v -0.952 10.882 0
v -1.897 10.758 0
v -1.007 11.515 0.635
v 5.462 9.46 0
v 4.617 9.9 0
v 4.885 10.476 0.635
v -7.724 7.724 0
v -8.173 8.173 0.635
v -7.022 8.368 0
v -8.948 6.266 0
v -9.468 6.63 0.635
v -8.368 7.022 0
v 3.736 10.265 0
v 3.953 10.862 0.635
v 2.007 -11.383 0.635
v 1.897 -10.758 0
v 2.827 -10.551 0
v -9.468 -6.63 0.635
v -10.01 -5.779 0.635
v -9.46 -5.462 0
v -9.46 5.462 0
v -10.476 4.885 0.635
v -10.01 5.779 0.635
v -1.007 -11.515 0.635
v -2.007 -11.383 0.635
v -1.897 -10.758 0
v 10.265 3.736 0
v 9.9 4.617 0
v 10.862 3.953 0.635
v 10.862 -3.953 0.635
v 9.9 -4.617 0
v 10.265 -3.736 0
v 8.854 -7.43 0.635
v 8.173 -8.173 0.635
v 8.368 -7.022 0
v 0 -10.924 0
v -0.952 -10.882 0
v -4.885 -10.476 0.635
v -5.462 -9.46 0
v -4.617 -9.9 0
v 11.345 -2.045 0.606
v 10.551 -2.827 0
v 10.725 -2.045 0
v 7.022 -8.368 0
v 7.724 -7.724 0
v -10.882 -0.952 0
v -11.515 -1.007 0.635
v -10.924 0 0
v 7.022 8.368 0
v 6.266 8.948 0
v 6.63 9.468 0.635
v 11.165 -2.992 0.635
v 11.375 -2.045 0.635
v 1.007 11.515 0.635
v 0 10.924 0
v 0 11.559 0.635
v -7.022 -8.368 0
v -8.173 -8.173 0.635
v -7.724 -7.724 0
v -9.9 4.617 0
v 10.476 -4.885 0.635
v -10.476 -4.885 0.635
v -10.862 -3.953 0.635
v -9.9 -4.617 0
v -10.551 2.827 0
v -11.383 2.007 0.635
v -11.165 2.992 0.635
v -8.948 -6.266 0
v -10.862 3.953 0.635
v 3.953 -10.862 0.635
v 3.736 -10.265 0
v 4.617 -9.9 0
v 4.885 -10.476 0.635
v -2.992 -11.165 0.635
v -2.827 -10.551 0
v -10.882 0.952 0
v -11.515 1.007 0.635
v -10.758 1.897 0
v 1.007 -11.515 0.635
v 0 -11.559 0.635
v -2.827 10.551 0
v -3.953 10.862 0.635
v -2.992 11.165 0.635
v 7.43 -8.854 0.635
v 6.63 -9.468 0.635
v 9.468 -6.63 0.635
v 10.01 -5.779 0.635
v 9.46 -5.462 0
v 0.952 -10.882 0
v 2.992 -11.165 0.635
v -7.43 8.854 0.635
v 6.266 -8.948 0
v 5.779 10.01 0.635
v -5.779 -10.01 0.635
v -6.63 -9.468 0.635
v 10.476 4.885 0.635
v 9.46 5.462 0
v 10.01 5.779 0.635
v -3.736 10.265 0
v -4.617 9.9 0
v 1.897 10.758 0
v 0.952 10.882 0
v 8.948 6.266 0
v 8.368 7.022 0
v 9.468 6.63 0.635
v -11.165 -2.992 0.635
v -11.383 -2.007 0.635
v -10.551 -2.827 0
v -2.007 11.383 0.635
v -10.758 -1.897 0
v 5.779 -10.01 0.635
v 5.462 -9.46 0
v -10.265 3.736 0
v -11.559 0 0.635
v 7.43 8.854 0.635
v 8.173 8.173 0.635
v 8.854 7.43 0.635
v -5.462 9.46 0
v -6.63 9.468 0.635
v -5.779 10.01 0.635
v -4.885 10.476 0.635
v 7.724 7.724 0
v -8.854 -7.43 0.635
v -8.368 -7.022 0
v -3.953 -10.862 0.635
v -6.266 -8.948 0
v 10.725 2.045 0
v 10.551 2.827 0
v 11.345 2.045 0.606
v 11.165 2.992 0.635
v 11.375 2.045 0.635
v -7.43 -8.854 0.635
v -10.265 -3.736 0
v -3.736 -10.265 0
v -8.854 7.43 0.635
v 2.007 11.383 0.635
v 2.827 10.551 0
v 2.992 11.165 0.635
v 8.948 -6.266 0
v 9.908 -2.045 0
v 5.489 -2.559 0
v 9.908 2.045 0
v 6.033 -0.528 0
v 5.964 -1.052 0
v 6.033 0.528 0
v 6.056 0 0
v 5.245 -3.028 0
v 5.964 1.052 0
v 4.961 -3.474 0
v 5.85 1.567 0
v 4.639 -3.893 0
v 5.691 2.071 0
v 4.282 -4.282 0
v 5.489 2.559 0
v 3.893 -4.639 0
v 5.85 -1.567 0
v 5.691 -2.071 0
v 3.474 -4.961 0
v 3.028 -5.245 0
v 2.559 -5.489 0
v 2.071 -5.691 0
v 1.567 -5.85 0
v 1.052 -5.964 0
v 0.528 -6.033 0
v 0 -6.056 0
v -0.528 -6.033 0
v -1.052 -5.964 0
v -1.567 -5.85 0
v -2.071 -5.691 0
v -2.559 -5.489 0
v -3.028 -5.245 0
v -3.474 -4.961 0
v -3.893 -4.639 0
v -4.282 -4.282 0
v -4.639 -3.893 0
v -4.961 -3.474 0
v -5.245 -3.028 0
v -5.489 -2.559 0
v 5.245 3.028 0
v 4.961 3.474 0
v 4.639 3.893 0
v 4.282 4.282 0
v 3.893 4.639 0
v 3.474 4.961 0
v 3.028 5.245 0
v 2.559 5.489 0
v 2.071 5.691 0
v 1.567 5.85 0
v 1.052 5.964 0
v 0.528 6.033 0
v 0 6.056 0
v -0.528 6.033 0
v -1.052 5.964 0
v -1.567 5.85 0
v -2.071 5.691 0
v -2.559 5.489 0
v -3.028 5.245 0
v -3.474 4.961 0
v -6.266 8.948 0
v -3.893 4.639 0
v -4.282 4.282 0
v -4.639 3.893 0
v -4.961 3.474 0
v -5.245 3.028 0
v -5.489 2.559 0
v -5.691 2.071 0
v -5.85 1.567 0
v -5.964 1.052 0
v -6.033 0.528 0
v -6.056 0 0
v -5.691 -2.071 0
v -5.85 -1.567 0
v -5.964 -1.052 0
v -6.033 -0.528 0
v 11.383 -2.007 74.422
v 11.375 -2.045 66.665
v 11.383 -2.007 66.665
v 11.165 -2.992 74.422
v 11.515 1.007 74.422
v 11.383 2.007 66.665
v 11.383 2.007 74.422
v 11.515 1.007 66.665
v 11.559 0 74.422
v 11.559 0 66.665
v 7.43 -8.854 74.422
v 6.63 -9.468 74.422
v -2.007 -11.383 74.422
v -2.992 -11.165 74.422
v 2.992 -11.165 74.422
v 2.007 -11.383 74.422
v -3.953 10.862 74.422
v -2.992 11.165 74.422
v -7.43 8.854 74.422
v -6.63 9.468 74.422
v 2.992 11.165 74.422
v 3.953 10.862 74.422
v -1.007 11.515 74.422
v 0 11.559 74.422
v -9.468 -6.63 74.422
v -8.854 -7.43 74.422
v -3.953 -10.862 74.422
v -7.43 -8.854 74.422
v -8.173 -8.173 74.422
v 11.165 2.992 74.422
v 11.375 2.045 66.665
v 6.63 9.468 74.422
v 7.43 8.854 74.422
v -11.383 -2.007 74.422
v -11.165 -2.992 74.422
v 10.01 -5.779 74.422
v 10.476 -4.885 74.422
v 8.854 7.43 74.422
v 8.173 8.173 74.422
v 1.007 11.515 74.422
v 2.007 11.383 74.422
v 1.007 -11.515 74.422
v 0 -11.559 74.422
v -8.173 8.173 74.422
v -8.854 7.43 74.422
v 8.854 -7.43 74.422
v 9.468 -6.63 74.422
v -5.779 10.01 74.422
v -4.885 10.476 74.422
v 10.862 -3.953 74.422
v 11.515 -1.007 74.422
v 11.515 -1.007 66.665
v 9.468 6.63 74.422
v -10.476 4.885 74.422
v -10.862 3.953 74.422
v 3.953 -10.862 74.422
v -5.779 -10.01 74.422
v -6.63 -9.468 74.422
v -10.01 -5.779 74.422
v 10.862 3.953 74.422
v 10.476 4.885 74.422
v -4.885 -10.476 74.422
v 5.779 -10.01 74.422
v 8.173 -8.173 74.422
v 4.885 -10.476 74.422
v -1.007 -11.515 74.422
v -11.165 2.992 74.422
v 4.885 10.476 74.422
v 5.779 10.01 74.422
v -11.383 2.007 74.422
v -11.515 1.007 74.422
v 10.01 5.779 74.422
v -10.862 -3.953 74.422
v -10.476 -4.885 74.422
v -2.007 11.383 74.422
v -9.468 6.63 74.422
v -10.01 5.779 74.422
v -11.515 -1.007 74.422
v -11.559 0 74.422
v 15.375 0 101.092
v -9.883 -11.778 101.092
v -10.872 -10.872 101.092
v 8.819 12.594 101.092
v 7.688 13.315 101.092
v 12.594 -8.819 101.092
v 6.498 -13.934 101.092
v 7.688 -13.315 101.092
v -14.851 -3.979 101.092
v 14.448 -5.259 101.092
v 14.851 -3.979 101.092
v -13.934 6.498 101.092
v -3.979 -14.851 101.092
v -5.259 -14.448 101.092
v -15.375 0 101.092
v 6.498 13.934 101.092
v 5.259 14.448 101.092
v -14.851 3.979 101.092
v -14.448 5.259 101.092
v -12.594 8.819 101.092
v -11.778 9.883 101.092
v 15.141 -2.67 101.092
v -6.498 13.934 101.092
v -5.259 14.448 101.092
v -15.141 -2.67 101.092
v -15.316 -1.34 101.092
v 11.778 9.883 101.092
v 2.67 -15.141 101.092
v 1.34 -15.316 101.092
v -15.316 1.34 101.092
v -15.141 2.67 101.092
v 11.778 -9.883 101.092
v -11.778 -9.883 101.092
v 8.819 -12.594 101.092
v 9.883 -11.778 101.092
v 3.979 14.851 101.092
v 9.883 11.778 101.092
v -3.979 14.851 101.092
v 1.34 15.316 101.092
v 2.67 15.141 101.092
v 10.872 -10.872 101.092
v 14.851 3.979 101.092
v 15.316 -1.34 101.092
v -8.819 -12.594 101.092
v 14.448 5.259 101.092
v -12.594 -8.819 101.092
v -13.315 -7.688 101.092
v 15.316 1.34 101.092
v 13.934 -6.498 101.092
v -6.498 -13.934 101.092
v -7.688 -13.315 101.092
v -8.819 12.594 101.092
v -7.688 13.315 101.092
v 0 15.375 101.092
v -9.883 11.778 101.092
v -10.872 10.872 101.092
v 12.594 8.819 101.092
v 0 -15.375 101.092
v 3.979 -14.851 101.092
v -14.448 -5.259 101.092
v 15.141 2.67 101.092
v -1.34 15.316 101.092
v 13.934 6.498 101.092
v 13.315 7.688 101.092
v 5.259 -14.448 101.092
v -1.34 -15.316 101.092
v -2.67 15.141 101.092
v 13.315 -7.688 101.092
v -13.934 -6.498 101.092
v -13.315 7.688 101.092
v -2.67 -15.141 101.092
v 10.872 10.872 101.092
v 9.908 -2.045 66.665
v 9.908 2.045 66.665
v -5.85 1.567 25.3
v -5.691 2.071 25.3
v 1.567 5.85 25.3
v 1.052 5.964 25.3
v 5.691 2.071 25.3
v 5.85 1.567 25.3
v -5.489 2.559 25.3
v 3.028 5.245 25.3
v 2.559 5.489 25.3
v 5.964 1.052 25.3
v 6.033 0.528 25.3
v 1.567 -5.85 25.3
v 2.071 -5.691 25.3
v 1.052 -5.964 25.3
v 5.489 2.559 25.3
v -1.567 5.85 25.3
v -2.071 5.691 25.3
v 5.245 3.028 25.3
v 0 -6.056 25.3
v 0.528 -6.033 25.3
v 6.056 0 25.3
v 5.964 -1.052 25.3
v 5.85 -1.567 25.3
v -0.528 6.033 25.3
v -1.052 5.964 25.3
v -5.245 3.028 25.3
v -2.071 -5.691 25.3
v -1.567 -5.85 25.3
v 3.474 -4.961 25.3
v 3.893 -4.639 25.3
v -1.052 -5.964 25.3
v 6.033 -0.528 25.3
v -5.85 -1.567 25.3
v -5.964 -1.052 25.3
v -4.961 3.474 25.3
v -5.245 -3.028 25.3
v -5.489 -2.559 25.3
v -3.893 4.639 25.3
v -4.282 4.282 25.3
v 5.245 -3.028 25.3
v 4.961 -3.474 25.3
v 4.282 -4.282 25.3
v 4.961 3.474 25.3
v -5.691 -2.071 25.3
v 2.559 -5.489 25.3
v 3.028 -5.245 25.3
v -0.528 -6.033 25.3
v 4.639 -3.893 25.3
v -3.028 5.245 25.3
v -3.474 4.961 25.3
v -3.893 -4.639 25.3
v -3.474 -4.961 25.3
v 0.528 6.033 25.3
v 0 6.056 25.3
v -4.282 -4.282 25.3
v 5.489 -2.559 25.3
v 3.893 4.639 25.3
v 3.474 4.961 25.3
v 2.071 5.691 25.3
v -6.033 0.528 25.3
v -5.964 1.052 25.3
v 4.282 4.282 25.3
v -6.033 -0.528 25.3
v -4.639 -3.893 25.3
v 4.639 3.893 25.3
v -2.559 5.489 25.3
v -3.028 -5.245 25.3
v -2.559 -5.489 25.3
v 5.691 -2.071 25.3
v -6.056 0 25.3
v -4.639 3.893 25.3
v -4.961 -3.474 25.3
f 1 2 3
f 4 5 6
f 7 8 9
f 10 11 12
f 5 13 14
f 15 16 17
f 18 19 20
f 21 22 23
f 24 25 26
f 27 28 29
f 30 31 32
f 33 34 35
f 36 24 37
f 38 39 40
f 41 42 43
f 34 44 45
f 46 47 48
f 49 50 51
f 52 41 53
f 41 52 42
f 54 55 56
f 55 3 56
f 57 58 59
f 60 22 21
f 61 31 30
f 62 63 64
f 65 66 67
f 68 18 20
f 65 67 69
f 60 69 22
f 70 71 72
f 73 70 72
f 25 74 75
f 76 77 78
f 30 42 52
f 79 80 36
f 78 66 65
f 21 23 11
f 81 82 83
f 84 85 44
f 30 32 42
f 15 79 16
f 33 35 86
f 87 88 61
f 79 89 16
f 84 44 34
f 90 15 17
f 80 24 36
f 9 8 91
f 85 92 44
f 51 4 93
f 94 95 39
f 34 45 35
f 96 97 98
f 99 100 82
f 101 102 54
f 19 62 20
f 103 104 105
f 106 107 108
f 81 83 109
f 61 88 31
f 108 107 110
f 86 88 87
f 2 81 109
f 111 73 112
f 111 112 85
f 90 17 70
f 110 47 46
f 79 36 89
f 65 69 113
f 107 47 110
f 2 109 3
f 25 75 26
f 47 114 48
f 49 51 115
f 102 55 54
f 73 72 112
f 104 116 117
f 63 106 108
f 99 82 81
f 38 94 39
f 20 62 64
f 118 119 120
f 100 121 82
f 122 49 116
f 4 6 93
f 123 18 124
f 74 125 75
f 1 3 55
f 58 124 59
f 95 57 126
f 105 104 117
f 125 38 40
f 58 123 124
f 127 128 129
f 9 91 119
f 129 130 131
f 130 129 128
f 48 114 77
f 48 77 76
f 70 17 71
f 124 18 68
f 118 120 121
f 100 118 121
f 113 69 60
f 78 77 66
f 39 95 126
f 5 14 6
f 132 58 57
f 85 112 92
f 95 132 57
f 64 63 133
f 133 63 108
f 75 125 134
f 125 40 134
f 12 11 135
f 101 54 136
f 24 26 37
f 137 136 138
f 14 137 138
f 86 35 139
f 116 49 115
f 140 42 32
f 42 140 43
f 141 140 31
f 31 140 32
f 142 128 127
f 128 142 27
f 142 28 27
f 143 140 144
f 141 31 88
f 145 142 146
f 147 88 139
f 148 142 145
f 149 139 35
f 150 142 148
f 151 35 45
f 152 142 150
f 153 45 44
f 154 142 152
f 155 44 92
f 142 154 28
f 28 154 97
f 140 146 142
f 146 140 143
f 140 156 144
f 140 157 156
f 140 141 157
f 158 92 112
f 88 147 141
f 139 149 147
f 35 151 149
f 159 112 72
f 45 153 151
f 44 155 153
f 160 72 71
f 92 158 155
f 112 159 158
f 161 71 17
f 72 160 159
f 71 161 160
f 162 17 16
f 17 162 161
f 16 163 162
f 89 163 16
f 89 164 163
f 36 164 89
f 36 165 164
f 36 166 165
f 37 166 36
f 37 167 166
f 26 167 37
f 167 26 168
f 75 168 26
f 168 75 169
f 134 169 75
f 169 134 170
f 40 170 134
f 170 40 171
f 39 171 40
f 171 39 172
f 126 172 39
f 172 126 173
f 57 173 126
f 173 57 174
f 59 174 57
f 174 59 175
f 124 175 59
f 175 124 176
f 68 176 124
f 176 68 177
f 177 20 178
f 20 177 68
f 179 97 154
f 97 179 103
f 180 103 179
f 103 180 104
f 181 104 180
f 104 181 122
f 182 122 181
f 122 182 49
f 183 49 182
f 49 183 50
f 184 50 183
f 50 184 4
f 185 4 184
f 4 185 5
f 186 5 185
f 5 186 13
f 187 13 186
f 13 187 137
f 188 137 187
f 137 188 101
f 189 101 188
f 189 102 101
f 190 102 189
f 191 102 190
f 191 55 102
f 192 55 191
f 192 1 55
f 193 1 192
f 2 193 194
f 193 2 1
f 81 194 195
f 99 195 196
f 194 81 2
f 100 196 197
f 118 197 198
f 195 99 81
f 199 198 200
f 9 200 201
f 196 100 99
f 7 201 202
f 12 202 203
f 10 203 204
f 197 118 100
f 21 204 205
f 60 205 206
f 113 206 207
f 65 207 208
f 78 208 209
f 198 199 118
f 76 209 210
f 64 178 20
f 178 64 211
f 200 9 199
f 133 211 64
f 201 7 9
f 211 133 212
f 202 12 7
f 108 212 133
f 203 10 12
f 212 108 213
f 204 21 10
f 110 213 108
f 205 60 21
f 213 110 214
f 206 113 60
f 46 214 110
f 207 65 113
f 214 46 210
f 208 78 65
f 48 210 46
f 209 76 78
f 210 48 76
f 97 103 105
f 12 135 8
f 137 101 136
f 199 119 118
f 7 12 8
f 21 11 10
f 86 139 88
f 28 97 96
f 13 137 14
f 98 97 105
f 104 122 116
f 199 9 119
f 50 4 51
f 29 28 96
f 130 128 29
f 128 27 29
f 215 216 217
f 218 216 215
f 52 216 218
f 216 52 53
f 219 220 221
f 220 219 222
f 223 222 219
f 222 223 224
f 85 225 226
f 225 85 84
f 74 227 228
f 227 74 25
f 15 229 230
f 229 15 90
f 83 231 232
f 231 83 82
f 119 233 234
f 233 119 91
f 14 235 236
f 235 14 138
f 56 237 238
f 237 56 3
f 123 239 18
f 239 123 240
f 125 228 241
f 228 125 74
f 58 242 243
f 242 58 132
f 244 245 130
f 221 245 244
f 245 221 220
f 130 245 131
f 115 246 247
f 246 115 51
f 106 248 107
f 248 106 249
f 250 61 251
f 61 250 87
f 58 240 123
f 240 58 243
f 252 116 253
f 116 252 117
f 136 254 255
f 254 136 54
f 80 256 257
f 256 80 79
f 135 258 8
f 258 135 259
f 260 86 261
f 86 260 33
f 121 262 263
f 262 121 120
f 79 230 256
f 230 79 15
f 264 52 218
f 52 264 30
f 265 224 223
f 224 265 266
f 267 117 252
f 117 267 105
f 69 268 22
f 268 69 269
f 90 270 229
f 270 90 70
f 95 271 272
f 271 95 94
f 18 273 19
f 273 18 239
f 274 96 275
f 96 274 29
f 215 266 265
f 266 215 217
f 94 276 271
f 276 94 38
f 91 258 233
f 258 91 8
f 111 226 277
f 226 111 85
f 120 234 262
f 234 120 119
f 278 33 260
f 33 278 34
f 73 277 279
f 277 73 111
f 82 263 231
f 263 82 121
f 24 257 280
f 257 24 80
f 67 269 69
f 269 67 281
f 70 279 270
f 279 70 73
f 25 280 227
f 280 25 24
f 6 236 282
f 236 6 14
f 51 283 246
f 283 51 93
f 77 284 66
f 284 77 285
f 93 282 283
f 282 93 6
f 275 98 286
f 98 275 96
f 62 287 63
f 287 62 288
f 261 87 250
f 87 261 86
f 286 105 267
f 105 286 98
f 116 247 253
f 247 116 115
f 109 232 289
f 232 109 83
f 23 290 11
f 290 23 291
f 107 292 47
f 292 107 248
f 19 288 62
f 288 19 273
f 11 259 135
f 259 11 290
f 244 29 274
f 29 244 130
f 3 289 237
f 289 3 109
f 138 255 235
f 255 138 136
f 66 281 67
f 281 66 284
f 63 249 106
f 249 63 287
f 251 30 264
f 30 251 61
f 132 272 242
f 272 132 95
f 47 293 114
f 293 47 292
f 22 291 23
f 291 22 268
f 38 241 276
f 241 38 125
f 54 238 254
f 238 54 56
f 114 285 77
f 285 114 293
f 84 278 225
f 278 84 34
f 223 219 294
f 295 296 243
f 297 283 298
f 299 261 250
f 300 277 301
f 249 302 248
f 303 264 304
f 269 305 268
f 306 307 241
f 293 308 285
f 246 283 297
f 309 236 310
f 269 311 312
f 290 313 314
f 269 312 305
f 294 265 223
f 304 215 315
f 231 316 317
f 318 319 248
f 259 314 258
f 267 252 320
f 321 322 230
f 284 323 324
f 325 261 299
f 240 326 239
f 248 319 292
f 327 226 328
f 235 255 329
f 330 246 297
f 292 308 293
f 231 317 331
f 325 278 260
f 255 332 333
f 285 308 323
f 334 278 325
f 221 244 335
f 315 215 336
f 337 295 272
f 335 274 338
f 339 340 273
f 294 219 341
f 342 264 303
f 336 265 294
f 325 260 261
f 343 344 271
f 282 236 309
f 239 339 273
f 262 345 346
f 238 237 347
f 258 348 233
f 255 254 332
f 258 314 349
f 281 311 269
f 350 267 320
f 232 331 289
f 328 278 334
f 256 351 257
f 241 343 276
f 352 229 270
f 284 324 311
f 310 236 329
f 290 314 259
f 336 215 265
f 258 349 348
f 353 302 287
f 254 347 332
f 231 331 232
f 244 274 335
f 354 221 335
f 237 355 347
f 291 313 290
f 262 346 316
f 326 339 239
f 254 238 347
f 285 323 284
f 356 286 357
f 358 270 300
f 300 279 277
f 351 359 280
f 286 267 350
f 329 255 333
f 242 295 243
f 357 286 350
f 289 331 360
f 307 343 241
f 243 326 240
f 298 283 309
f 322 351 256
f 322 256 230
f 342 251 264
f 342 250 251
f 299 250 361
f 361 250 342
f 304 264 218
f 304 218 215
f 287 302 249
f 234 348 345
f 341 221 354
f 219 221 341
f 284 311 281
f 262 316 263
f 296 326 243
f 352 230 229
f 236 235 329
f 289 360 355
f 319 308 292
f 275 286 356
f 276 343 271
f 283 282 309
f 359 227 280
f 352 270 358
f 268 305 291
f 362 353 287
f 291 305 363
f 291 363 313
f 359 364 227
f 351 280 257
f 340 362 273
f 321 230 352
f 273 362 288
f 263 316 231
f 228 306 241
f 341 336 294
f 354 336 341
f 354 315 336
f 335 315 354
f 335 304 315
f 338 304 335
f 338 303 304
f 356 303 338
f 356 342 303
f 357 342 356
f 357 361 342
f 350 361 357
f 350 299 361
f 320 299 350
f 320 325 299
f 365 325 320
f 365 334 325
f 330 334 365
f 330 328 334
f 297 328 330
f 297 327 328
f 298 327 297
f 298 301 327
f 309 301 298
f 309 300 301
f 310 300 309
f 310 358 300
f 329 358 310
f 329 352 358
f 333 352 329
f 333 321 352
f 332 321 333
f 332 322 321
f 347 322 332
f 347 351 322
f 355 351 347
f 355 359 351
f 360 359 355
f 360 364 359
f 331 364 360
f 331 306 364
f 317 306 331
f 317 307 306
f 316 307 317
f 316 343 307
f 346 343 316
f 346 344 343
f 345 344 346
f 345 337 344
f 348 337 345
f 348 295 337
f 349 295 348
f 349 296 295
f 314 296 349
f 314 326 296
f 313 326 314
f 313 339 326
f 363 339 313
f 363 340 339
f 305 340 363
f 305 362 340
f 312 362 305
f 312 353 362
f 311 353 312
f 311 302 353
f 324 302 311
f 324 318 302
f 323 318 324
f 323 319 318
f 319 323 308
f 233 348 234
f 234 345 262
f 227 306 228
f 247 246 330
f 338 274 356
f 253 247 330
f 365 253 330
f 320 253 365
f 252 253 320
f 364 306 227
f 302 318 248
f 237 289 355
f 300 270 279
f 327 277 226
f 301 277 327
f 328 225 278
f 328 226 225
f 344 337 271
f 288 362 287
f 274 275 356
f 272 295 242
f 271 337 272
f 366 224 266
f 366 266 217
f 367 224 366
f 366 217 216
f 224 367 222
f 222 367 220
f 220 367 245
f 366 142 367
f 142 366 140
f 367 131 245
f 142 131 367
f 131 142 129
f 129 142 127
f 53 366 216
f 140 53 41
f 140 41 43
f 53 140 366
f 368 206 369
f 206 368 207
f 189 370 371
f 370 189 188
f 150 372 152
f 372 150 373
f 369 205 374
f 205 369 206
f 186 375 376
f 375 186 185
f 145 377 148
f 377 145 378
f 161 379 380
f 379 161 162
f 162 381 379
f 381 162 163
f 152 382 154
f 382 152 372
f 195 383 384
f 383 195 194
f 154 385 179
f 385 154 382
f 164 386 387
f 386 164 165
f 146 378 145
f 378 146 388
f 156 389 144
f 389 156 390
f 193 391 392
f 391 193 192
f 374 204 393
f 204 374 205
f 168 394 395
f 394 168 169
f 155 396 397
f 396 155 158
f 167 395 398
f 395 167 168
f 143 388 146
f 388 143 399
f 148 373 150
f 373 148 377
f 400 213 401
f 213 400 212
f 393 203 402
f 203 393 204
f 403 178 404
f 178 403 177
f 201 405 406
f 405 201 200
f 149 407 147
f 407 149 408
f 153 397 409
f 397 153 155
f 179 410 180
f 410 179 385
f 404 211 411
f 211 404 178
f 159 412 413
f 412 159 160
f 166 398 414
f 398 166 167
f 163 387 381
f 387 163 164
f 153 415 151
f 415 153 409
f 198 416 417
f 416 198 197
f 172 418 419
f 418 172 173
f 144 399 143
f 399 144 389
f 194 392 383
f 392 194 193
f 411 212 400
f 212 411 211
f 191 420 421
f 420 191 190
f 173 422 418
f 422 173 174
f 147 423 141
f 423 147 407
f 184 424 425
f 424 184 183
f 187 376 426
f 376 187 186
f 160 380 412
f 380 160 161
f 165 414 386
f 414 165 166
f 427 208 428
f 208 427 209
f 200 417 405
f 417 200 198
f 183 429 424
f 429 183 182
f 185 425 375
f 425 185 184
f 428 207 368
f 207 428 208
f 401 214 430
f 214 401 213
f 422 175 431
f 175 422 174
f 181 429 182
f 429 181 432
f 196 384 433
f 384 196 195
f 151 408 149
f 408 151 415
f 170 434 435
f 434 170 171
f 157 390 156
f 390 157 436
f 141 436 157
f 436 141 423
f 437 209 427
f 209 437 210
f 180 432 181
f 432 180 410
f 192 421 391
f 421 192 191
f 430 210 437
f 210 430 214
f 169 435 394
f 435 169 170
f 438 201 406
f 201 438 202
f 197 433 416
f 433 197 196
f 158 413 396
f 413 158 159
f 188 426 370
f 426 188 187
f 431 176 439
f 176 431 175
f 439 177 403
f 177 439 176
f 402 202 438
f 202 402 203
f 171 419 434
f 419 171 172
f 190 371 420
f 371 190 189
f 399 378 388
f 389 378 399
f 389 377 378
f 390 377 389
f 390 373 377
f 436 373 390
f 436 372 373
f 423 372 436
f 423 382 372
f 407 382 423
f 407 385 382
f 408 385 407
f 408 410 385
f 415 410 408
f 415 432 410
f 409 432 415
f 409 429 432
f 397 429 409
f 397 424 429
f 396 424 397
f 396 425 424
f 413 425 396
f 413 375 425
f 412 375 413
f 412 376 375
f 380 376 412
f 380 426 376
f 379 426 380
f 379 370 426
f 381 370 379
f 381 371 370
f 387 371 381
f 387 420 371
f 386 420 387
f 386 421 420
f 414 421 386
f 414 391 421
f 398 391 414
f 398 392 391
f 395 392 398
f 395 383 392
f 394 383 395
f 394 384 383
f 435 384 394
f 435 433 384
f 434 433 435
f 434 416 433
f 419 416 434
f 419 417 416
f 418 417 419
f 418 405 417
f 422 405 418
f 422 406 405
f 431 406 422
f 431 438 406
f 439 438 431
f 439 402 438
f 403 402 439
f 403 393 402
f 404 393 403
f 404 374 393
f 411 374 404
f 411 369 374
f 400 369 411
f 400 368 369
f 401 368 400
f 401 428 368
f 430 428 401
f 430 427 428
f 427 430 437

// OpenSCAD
$fn=72;

use <./polyScrewThread-rkt.scad>

show_base_collet        = 1;
show_endmill_collet     = 0;
  show_curved_top       = 1;
show_tool_cap           = 0;
show_screw              = 0;
show_threads            = 0;

show_morse_3_taper      = 0;

//------------------------------------------------------
//------------------------------------------------------

tolerance = 0.5;

base_diam = inch(0.9495) - tolerance*2;
max_diam  = inch(1.25) - tolerance*2;
chamfir_len = inch(0.025);

shaft_len = inch(2.93);
total_len = inch(3.98);
taper_len = total_len - shaft_len;

//attachemetnt is 7/26-20 NF
screw_hole_diam = inch(7/16) + tolerance*2;
screw_hole_depth = inch(1);
screw_hole_TPI = 20;

key_width = inch(0.161);
key_depth = inch(0.065);
key_length = inch(2.625);


//Below would be adjustable for particular application
//Not part of R8 spec
tool_cap_diam = inch(1.5) - tolerance*2;
tool_cap_len = inch(0.75) - tolerance*2;

//------------------------------------------------------
//------------------------------------------------------

if (show_base_collet) {
  collet();  
}

if (show_tool_cap) {
  translate([0,0,total_len])
    cylinder(d=tool_cap_diam, h=tool_cap_len);
}

if (show_screw) {
  thread(inch(1/2), 18, inch(1));  
  cylinder(d=inch(1/2), h=inch(1/2));
}  

if (show_endmill_collet) {
  endmill_collet();
}  

if (show_morse_3_taper) {
  morse_3_taper();
}  
//------------------------------------------------------
//------------------------------------------------------


module morse_3_taper(max_diam = inch(2), length = inch(5)) {
 
  taper = 0.60235;  //taper inches/foot
  taper_per_inch = taper/12;
  
  large_diam = max_diam;
  small_diam = large_diam - (length * taper_per_inch);
  
  cylinder(d1=small_diam, d2=large_diam, h = length);
  
}  


*intersection() {
  endmill_collet();
  translate([-25,-25,0])
    cube([50,50,90]);
}  

module endmill_collet(endmill_diam = inch(3/8)) {
  
  slit_width = inch(1/32);
  wall_thick = inch(1/8);
  hollow_shaft_diam = base_diam - key_depth - wall_thick;
  hollow_shaft_past_key_slot_diam = base_diam - wall_thick;
  hollow_max_taper_diam = max_diam - wall_thick;
  
  difference() {
    union() { //addative
      collet();
      if (show_curved_top) {
        translate([0,0,total_len])
        curve_top(rad=65, diam=max_diam);
      }  
    }
    union() { //subtractive
      translate([0,0, screw_hole_depth-0.2])
      cylinder(d1=screw_hole_diam, d2=hollow_shaft_diam, 
               h=inch(1/2)+0.1);

      translate([0,0, screw_hole_depth + inch(1/2) -0.2])
      cylinder(d=hollow_shaft_diam, 
               h=key_length - screw_hole_depth - inch(1/2) +0.1);

      translate([0,0, key_length-0.2])
      cylinder(d1=hollow_shaft_diam, d2=endmill_diam, //d2=hollow_shaft_past_key_slot_diam,
               h=shaft_len - key_length);


      *translate([0,0, shaft_len-0.3])
      cylinder(d1=hollow_shaft_past_key_slot_diam, d2 = hollow_max_taper_diam,
               h=taper_len - wall_thick);

      for (angle=[60:120:359]) {
        rotate([0,0,angle])
        translate([0, -slit_width/2, key_length/2])
        cube([max_diam/2, slit_width, shaft_len]);
      }  

      translate([0,0,shaft_len-0.4])
      cylinder(d=endmill_diam, h=inch(2));
      
      
    }
  }   
}  

module curve_top(rad = 100, diam = 40, h=2) {
  
  intersection() {
    translate([0,0,-rad + h])
      sphere(r=rad, $fn=100);  
    cylinder(d=diam, h=h*2);
  }  
}  

module collet() {
  difference() {
    union() {    
      cylinder(d1=base_diam - chamfir_len*2, d2=base_diam, h=chamfir_len);  
      translate([0,0,chamfir_len])  
      cylinder(d=base_diam, h=shaft_len-chamfir_len);
      translate([0,0,shaft_len])
        cylinder(d1=base_diam, d2=max_diam, h=taper_len); 
    }
    union() { //subtractive
      translate([base_diam/2 - key_depth, -key_width/2, -0.01])
        cube([key_depth+0.1, key_width, key_length]);  
        
      if (show_threads) {
        translate([0,0,-0.1]) 
         thread(screw_hole_diam, screw_hole_TPI, screw_hole_depth);   
      } else {
        translate([0,0,-0.1])  
        cylinder(d=screw_hole_diam, h=screw_hole_depth);  
      }  
    }   
  }
}

function inch(n) = 25.4 * n;


module thread(diam, pitch, length) {
  step = length / pitch;
  screw_thread(diam,   // Outer diameter of the thread
               step,   // Step, traveling length per turn, also, tooth height, whatever...
                 30,   // Degrees for the shape of the tooth 
                       // (XY plane=0, Z=90, btw, 0 and 90 will not work...)
               length, // Length (Z) of the tread
               PI/8,   // Resolution, one face each "PI/2" mm of the perimeter, 
                  1);  // Countersink style:
                       //     -2 - Not even flat ends
                       //     -1 - Bottom (countersink'd and top flat)
                       //     0 - None (top and bottom flat)
                       //      1 - Top (bottom flat)
                       //      2 - Both (countersink'd)     
}
